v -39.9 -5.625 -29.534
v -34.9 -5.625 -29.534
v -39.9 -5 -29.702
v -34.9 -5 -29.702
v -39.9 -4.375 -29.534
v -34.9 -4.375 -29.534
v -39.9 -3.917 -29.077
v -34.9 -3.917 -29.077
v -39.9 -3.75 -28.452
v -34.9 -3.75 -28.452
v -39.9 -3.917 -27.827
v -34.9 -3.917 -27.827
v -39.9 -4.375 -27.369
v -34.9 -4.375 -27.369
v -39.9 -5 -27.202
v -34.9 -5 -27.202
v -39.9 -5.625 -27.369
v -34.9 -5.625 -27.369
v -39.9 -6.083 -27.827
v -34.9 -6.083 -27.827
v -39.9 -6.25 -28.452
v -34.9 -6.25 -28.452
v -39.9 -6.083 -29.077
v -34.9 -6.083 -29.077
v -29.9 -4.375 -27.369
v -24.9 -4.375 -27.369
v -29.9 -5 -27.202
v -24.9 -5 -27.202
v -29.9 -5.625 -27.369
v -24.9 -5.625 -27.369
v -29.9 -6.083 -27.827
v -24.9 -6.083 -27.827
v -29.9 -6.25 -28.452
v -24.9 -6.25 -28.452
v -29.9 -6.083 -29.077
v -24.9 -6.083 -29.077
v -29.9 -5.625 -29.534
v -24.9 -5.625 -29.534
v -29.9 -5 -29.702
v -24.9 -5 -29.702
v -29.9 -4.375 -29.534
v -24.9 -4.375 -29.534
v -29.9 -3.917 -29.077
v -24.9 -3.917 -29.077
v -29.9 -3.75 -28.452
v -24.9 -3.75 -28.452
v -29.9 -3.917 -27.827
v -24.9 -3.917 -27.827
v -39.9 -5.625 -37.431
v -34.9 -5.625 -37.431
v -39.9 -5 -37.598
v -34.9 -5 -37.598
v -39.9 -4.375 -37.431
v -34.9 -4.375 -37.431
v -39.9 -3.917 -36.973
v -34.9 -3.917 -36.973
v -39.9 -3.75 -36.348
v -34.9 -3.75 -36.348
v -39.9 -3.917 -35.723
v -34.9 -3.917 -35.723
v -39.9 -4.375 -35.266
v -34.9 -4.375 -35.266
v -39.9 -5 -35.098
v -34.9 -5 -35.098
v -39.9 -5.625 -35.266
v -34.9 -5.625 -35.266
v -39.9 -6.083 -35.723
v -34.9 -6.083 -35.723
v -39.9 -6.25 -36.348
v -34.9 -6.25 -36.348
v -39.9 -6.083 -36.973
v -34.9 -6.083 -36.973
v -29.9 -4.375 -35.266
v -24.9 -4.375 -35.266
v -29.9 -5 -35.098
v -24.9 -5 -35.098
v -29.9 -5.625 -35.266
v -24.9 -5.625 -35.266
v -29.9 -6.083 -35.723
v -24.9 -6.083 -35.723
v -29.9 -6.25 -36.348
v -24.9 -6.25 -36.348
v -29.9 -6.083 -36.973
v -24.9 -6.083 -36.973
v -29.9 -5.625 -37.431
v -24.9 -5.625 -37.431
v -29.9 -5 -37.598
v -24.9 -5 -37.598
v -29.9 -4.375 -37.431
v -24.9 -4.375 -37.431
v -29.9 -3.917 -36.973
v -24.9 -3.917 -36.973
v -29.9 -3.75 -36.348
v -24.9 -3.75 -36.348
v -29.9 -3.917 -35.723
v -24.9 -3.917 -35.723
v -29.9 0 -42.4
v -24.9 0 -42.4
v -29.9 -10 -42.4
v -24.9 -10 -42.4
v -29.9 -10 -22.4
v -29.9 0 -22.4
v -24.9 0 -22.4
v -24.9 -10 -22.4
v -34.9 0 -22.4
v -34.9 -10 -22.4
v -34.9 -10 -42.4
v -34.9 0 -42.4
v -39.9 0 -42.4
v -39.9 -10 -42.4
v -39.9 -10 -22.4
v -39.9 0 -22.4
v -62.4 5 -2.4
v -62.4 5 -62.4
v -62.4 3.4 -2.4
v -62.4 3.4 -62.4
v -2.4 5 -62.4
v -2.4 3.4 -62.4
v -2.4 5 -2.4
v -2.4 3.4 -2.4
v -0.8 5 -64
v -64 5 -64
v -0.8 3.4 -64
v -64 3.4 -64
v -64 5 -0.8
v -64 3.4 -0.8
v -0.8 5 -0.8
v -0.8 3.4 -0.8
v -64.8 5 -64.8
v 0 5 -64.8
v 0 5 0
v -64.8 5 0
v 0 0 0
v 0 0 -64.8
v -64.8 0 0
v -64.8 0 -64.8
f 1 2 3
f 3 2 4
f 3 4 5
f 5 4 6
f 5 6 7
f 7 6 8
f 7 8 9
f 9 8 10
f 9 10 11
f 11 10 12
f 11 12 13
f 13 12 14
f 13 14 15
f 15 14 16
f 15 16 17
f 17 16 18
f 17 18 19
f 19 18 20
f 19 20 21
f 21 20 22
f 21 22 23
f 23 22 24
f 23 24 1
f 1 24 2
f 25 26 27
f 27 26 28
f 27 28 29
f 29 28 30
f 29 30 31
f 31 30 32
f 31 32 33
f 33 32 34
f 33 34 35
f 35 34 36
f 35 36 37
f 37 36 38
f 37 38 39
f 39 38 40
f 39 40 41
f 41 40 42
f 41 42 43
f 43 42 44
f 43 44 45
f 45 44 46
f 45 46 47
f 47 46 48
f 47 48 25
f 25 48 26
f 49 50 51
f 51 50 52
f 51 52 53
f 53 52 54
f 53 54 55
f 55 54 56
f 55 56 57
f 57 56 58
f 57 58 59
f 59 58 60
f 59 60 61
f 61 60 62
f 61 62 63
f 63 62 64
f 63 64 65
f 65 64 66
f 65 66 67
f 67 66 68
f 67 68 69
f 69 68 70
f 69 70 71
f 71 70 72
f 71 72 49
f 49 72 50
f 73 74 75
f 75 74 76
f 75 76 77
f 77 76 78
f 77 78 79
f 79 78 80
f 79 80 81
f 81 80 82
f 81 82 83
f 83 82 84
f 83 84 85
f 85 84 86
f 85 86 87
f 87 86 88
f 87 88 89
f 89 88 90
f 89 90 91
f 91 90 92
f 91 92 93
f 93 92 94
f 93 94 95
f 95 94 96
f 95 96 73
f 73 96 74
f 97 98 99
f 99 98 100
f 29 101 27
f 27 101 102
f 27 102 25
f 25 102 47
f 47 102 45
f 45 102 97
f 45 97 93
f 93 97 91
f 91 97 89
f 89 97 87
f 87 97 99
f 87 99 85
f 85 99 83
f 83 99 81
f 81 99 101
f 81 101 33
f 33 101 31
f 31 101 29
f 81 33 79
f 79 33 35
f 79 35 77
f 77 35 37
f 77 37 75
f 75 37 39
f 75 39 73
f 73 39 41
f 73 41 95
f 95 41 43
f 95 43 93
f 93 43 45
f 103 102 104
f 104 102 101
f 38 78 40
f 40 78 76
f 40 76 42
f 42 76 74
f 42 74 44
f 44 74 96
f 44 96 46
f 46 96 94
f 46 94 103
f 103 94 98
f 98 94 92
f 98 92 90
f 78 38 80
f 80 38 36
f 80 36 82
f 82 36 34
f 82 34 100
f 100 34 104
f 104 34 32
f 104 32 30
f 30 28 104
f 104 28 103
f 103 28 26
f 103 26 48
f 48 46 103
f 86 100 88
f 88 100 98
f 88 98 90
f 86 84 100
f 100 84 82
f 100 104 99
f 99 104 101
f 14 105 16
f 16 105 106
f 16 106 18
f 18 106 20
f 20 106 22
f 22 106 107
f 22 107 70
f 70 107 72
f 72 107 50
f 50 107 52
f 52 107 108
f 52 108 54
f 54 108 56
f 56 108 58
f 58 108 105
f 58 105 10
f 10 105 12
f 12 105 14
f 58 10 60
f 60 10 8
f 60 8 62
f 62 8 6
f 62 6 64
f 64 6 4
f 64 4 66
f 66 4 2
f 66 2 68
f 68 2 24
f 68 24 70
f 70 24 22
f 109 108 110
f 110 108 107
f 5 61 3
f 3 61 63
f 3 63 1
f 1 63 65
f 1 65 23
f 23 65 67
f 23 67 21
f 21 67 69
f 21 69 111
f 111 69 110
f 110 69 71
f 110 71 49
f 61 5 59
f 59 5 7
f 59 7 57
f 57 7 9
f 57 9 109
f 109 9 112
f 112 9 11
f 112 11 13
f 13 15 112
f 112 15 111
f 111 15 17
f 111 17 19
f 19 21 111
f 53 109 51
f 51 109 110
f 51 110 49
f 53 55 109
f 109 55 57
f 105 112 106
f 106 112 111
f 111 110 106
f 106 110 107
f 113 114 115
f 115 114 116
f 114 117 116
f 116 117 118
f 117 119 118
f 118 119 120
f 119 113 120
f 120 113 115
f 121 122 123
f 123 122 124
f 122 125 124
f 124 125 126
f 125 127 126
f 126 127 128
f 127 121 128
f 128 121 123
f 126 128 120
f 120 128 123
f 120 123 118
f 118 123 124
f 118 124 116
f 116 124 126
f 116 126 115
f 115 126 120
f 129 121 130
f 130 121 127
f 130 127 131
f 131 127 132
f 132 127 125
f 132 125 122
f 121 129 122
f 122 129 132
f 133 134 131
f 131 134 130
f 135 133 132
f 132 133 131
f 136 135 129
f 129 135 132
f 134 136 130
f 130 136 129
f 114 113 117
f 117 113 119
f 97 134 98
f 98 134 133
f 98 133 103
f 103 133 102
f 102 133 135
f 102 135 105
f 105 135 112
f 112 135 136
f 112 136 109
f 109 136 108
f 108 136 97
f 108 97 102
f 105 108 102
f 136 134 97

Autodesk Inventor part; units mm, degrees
ref_plane "YZ Plane" through (0, 0, 0) normal (1, 0, 0) x (0, 1, 0)
ref_plane "XZ Plane" through (0, 0, 0) normal (0, 1, 0) x (-1, 0, 0)
ref_plane "XY Plane" through (0, 0, 0) normal (0, 0, 1) x (1, 0, 0)
sketch "스케치1" plane through (0, 0, 0) normal (0, 1, 0) x (-1, 0, 0)
  line L0 (0, 0) -> (64.8, 0)
  line L1 (64.8, 0) -> (64.8, -64.8)
  line L2 (64.8, -64.8) -> (0, -64.8)
  line L3 (0, -64.8) -> (0, 0)
  dimension "d0" = 64.8
  dimension "d1" = 64.8
extrude "돌출1" add sketch "스케치1" along normal blind 5
sketch "스케치2" plane through (0, 5, 0) normal (0, 1, 0) x (1, 0, 0)
  line L0 (-2.4, 2.4) -> (-62.4, 2.4)
  line L1 (-62.4, 2.4) -> (-62.4, 62.4)
  line L2 (-62.4, 62.4) -> (-2.4, 62.4)
  line L3 (-2.4, 62.4) -> (-2.4, 2.4)
  line L4 (-64.8, 0) -> (0, 0) projected
  line L5 (0, 0) -> (0, 64.8) projected
  line L6 (-64, 0.8) -> (-0.8, 0.8)
  line L7 (-0.8, 0.8) -> (-0.8, 64)
  line L8 (-0.8, 64) -> (-64, 64)
  line L9 (-64, 64) -> (-64, 0.8)
  line L10 (0, 64.8) -> (-64.8, 64.8) projected
  dimension "d54" = 60
  dimension "d55" = 1.6
  dimension "d56" = 1.6
  dimension "d57" = 1.6
  dimension "d58" = 1.6
  dimension "d59" = 2.4
  dimension "d60" = 2.4
  dimension "d61" = 2.4
extrude "돌출2" cut sketch "스케치2" against normal blind 1.6
sketch "스케치7" plane through (0, 0, 0) normal (0, -1, 0) x (1, 0, 0)
  line L0 (-29.9, -22.4) -> (-24.9, -22.4)
  line L1 (-24.9, -22.4) -> (-24.9, -42.4)
  line L2 (-24.9, -42.4) -> (-29.9, -42.4)
  line L3 (-29.9, -42.4) -> (-29.9, -22.4)
  line L4 (-39.9, -22.4) -> (-34.9, -22.4)
  line L5 (-34.9, -22.4) -> (-34.9, -42.4)
  line L6 (-34.9, -42.4) -> (-39.9, -42.4)
  line L7 (-39.9, -42.4) -> (-39.9, -22.4)
  line L8 (0, 0) -> (0, -64.8) projected
  line L9 (-34.9, -42.4) -> (-29.9, -42.4)
  line L10 (-64.8, 0) -> (0, 0) projected
  point P0 (0, -32.4)
  point P1 (-24.9, -32.4)
  point P2 (-32.4, -42.4)
  point P3 (-32.4, 0)
  dimension "d37" = 5
  dimension "d38" = 20
  dimension "d41" = 10
extrude "돌출7" add sketch "스케치7" along normal blind 10
sketch "스케치8" plane through (-24.9, 0, -22.4) normal (1, 0, 0) x (0, 0, -1)
  circle A0 centre (6.0516, -5) radius 1.25
  circle A1 centre (13.9484, -5) radius 1.25
  line L0 (13.9484, -5) -> (6.0516, -5)
  line L1 (-22.4, 0) -> (42.4, 0) projected
  line L2 (0, 0) -> (0, -10) projected
  point P0 (10, -5)
  point P1 (10, 0)
  point P2 (0, -5)
  dimension "d48" = 2.5
  dimension "d49" = 2.5
extrude "돌출8" cut sketch "스케치8" against normal blind 15
properties part number "사각형 OV-PAM 5패턴 상단"
